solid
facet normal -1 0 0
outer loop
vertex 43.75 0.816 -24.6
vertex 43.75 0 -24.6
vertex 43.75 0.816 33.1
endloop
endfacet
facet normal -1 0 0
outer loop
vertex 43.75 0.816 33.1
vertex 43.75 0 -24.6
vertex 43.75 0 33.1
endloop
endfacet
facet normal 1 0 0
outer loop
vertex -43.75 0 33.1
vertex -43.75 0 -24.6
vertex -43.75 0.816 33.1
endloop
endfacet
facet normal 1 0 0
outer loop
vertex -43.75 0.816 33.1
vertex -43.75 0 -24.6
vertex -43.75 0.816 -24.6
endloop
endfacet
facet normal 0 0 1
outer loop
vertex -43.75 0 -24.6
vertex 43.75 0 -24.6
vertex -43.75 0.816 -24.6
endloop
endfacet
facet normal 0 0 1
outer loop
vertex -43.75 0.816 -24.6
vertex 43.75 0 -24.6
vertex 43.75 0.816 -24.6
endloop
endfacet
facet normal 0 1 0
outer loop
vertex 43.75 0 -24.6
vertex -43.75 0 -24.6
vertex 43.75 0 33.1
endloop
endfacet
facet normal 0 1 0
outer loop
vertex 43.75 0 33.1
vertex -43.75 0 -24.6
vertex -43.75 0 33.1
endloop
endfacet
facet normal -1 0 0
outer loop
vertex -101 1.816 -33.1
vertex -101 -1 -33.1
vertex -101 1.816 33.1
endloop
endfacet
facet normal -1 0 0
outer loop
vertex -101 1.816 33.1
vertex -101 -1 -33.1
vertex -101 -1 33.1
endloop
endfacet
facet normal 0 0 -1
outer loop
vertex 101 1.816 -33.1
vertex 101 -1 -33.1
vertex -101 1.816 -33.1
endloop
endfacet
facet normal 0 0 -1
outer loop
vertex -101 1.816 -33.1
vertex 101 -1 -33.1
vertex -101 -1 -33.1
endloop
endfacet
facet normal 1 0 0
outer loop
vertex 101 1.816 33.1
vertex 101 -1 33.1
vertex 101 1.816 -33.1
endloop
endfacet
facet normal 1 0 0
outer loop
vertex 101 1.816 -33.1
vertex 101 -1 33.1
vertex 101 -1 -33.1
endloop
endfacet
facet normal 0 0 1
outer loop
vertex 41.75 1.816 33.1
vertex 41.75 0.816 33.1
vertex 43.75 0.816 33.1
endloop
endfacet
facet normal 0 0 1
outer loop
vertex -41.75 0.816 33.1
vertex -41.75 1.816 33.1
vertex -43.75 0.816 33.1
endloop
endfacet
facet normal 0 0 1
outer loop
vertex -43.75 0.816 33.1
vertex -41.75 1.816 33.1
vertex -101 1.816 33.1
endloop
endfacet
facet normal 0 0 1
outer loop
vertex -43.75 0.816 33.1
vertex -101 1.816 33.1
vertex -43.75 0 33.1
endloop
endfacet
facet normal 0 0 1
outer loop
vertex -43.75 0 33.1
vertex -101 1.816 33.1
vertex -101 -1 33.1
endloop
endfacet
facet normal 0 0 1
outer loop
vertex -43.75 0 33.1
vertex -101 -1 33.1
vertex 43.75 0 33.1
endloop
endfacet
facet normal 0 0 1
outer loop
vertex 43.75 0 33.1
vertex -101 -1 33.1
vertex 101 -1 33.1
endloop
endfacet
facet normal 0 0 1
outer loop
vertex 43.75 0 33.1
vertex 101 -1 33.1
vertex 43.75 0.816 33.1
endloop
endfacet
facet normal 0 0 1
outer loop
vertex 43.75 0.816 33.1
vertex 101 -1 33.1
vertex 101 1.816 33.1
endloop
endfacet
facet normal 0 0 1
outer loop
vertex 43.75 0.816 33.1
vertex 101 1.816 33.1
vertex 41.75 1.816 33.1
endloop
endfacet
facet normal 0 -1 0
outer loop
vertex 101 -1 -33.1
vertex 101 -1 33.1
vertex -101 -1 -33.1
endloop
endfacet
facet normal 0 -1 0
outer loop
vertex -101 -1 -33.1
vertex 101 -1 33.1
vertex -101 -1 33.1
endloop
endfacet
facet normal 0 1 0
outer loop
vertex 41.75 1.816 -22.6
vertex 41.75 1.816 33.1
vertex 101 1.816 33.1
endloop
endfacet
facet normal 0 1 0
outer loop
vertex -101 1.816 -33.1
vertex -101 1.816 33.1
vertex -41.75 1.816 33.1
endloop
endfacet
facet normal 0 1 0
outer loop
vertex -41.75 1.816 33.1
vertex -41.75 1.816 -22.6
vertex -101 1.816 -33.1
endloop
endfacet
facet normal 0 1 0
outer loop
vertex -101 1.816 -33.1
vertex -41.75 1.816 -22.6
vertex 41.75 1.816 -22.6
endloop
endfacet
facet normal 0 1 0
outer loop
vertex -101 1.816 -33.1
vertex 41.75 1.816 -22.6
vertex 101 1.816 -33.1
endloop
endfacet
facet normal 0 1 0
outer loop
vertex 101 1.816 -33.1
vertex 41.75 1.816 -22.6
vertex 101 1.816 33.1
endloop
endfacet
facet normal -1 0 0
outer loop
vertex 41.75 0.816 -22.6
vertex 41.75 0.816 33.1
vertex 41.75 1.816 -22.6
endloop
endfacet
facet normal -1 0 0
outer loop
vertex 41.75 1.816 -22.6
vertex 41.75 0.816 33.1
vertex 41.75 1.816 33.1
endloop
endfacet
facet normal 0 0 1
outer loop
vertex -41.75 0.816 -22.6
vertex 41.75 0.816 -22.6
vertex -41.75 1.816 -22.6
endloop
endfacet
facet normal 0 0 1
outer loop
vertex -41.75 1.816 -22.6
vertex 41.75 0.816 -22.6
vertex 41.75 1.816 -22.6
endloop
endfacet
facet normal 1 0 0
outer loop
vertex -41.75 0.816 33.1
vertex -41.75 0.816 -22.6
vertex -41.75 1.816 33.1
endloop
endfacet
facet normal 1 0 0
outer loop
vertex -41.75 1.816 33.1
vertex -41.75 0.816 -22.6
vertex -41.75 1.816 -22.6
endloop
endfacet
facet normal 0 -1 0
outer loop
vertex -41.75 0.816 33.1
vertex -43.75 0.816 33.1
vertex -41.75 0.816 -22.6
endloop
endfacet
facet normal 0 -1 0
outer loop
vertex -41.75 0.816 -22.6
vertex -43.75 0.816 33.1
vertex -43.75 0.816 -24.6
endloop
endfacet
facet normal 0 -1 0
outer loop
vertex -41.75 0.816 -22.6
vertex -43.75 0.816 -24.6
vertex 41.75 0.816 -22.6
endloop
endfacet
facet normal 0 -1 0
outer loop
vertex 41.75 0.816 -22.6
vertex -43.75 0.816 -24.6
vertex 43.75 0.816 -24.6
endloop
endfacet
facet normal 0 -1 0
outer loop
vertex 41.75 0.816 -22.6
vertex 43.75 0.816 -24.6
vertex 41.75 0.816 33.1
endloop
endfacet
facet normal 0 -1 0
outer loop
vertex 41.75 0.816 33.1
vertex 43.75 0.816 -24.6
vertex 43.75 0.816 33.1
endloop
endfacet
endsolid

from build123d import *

# Parameters (mm, degrees)
SKETCH1_W           = 202
SKETCH1_H           = 66.2
BOSS_EXTRUDE1_DEPTH = 1
BOSS_EXTRUDE2_DEPTH = 1.816115501
BOSS_EXTRUDE3_DEPTH = 1


with BuildPart() as part:
    # Sketch1 → Boss-Extrude1 (new body)
    with BuildSketch(Plane(origin=(0, 0, 0), x_dir=(1, 0, 0), z_dir=(0, 1, 0))):
        Rectangle(SKETCH1_W, SKETCH1_H)
    extrude(amount=-BOSS_EXTRUDE1_DEPTH)

    # Sketch1<3> → Boss-Extrude2 (add)
    with BuildSketch(Plane(origin=(0, 0, 0), x_dir=(1, 0, 0), z_dir=(0, 1, 0))):
        Polygon((-101, -33.1), (-43.75, -33.1), (-43.75, 24.6), (43.75, 24.6), (43.75, -33.1), (101, -33.1), (101, 33.1), (-101, 33.1), align=None)
    extrude(amount=BOSS_EXTRUDE2_DEPTH)

    # Sketch2 → Boss-Extrude3 (add)
    with BuildSketch(Plane(origin=(0, 1.816115501, 0), x_dir=(1, 0, 0), z_dir=(0, 1, 0))):
        Polygon((-43.75, -33.1), (-41.75, -33.1), (-41.75, 22.6), (41.75, 22.6), (41.75, -33.1), (43.75, -33.1), (43.75, 24.6), (-43.75, 24.6), align=None)
    extrude(amount=-BOSS_EXTRUDE3_DEPTH)


solid = part.part
